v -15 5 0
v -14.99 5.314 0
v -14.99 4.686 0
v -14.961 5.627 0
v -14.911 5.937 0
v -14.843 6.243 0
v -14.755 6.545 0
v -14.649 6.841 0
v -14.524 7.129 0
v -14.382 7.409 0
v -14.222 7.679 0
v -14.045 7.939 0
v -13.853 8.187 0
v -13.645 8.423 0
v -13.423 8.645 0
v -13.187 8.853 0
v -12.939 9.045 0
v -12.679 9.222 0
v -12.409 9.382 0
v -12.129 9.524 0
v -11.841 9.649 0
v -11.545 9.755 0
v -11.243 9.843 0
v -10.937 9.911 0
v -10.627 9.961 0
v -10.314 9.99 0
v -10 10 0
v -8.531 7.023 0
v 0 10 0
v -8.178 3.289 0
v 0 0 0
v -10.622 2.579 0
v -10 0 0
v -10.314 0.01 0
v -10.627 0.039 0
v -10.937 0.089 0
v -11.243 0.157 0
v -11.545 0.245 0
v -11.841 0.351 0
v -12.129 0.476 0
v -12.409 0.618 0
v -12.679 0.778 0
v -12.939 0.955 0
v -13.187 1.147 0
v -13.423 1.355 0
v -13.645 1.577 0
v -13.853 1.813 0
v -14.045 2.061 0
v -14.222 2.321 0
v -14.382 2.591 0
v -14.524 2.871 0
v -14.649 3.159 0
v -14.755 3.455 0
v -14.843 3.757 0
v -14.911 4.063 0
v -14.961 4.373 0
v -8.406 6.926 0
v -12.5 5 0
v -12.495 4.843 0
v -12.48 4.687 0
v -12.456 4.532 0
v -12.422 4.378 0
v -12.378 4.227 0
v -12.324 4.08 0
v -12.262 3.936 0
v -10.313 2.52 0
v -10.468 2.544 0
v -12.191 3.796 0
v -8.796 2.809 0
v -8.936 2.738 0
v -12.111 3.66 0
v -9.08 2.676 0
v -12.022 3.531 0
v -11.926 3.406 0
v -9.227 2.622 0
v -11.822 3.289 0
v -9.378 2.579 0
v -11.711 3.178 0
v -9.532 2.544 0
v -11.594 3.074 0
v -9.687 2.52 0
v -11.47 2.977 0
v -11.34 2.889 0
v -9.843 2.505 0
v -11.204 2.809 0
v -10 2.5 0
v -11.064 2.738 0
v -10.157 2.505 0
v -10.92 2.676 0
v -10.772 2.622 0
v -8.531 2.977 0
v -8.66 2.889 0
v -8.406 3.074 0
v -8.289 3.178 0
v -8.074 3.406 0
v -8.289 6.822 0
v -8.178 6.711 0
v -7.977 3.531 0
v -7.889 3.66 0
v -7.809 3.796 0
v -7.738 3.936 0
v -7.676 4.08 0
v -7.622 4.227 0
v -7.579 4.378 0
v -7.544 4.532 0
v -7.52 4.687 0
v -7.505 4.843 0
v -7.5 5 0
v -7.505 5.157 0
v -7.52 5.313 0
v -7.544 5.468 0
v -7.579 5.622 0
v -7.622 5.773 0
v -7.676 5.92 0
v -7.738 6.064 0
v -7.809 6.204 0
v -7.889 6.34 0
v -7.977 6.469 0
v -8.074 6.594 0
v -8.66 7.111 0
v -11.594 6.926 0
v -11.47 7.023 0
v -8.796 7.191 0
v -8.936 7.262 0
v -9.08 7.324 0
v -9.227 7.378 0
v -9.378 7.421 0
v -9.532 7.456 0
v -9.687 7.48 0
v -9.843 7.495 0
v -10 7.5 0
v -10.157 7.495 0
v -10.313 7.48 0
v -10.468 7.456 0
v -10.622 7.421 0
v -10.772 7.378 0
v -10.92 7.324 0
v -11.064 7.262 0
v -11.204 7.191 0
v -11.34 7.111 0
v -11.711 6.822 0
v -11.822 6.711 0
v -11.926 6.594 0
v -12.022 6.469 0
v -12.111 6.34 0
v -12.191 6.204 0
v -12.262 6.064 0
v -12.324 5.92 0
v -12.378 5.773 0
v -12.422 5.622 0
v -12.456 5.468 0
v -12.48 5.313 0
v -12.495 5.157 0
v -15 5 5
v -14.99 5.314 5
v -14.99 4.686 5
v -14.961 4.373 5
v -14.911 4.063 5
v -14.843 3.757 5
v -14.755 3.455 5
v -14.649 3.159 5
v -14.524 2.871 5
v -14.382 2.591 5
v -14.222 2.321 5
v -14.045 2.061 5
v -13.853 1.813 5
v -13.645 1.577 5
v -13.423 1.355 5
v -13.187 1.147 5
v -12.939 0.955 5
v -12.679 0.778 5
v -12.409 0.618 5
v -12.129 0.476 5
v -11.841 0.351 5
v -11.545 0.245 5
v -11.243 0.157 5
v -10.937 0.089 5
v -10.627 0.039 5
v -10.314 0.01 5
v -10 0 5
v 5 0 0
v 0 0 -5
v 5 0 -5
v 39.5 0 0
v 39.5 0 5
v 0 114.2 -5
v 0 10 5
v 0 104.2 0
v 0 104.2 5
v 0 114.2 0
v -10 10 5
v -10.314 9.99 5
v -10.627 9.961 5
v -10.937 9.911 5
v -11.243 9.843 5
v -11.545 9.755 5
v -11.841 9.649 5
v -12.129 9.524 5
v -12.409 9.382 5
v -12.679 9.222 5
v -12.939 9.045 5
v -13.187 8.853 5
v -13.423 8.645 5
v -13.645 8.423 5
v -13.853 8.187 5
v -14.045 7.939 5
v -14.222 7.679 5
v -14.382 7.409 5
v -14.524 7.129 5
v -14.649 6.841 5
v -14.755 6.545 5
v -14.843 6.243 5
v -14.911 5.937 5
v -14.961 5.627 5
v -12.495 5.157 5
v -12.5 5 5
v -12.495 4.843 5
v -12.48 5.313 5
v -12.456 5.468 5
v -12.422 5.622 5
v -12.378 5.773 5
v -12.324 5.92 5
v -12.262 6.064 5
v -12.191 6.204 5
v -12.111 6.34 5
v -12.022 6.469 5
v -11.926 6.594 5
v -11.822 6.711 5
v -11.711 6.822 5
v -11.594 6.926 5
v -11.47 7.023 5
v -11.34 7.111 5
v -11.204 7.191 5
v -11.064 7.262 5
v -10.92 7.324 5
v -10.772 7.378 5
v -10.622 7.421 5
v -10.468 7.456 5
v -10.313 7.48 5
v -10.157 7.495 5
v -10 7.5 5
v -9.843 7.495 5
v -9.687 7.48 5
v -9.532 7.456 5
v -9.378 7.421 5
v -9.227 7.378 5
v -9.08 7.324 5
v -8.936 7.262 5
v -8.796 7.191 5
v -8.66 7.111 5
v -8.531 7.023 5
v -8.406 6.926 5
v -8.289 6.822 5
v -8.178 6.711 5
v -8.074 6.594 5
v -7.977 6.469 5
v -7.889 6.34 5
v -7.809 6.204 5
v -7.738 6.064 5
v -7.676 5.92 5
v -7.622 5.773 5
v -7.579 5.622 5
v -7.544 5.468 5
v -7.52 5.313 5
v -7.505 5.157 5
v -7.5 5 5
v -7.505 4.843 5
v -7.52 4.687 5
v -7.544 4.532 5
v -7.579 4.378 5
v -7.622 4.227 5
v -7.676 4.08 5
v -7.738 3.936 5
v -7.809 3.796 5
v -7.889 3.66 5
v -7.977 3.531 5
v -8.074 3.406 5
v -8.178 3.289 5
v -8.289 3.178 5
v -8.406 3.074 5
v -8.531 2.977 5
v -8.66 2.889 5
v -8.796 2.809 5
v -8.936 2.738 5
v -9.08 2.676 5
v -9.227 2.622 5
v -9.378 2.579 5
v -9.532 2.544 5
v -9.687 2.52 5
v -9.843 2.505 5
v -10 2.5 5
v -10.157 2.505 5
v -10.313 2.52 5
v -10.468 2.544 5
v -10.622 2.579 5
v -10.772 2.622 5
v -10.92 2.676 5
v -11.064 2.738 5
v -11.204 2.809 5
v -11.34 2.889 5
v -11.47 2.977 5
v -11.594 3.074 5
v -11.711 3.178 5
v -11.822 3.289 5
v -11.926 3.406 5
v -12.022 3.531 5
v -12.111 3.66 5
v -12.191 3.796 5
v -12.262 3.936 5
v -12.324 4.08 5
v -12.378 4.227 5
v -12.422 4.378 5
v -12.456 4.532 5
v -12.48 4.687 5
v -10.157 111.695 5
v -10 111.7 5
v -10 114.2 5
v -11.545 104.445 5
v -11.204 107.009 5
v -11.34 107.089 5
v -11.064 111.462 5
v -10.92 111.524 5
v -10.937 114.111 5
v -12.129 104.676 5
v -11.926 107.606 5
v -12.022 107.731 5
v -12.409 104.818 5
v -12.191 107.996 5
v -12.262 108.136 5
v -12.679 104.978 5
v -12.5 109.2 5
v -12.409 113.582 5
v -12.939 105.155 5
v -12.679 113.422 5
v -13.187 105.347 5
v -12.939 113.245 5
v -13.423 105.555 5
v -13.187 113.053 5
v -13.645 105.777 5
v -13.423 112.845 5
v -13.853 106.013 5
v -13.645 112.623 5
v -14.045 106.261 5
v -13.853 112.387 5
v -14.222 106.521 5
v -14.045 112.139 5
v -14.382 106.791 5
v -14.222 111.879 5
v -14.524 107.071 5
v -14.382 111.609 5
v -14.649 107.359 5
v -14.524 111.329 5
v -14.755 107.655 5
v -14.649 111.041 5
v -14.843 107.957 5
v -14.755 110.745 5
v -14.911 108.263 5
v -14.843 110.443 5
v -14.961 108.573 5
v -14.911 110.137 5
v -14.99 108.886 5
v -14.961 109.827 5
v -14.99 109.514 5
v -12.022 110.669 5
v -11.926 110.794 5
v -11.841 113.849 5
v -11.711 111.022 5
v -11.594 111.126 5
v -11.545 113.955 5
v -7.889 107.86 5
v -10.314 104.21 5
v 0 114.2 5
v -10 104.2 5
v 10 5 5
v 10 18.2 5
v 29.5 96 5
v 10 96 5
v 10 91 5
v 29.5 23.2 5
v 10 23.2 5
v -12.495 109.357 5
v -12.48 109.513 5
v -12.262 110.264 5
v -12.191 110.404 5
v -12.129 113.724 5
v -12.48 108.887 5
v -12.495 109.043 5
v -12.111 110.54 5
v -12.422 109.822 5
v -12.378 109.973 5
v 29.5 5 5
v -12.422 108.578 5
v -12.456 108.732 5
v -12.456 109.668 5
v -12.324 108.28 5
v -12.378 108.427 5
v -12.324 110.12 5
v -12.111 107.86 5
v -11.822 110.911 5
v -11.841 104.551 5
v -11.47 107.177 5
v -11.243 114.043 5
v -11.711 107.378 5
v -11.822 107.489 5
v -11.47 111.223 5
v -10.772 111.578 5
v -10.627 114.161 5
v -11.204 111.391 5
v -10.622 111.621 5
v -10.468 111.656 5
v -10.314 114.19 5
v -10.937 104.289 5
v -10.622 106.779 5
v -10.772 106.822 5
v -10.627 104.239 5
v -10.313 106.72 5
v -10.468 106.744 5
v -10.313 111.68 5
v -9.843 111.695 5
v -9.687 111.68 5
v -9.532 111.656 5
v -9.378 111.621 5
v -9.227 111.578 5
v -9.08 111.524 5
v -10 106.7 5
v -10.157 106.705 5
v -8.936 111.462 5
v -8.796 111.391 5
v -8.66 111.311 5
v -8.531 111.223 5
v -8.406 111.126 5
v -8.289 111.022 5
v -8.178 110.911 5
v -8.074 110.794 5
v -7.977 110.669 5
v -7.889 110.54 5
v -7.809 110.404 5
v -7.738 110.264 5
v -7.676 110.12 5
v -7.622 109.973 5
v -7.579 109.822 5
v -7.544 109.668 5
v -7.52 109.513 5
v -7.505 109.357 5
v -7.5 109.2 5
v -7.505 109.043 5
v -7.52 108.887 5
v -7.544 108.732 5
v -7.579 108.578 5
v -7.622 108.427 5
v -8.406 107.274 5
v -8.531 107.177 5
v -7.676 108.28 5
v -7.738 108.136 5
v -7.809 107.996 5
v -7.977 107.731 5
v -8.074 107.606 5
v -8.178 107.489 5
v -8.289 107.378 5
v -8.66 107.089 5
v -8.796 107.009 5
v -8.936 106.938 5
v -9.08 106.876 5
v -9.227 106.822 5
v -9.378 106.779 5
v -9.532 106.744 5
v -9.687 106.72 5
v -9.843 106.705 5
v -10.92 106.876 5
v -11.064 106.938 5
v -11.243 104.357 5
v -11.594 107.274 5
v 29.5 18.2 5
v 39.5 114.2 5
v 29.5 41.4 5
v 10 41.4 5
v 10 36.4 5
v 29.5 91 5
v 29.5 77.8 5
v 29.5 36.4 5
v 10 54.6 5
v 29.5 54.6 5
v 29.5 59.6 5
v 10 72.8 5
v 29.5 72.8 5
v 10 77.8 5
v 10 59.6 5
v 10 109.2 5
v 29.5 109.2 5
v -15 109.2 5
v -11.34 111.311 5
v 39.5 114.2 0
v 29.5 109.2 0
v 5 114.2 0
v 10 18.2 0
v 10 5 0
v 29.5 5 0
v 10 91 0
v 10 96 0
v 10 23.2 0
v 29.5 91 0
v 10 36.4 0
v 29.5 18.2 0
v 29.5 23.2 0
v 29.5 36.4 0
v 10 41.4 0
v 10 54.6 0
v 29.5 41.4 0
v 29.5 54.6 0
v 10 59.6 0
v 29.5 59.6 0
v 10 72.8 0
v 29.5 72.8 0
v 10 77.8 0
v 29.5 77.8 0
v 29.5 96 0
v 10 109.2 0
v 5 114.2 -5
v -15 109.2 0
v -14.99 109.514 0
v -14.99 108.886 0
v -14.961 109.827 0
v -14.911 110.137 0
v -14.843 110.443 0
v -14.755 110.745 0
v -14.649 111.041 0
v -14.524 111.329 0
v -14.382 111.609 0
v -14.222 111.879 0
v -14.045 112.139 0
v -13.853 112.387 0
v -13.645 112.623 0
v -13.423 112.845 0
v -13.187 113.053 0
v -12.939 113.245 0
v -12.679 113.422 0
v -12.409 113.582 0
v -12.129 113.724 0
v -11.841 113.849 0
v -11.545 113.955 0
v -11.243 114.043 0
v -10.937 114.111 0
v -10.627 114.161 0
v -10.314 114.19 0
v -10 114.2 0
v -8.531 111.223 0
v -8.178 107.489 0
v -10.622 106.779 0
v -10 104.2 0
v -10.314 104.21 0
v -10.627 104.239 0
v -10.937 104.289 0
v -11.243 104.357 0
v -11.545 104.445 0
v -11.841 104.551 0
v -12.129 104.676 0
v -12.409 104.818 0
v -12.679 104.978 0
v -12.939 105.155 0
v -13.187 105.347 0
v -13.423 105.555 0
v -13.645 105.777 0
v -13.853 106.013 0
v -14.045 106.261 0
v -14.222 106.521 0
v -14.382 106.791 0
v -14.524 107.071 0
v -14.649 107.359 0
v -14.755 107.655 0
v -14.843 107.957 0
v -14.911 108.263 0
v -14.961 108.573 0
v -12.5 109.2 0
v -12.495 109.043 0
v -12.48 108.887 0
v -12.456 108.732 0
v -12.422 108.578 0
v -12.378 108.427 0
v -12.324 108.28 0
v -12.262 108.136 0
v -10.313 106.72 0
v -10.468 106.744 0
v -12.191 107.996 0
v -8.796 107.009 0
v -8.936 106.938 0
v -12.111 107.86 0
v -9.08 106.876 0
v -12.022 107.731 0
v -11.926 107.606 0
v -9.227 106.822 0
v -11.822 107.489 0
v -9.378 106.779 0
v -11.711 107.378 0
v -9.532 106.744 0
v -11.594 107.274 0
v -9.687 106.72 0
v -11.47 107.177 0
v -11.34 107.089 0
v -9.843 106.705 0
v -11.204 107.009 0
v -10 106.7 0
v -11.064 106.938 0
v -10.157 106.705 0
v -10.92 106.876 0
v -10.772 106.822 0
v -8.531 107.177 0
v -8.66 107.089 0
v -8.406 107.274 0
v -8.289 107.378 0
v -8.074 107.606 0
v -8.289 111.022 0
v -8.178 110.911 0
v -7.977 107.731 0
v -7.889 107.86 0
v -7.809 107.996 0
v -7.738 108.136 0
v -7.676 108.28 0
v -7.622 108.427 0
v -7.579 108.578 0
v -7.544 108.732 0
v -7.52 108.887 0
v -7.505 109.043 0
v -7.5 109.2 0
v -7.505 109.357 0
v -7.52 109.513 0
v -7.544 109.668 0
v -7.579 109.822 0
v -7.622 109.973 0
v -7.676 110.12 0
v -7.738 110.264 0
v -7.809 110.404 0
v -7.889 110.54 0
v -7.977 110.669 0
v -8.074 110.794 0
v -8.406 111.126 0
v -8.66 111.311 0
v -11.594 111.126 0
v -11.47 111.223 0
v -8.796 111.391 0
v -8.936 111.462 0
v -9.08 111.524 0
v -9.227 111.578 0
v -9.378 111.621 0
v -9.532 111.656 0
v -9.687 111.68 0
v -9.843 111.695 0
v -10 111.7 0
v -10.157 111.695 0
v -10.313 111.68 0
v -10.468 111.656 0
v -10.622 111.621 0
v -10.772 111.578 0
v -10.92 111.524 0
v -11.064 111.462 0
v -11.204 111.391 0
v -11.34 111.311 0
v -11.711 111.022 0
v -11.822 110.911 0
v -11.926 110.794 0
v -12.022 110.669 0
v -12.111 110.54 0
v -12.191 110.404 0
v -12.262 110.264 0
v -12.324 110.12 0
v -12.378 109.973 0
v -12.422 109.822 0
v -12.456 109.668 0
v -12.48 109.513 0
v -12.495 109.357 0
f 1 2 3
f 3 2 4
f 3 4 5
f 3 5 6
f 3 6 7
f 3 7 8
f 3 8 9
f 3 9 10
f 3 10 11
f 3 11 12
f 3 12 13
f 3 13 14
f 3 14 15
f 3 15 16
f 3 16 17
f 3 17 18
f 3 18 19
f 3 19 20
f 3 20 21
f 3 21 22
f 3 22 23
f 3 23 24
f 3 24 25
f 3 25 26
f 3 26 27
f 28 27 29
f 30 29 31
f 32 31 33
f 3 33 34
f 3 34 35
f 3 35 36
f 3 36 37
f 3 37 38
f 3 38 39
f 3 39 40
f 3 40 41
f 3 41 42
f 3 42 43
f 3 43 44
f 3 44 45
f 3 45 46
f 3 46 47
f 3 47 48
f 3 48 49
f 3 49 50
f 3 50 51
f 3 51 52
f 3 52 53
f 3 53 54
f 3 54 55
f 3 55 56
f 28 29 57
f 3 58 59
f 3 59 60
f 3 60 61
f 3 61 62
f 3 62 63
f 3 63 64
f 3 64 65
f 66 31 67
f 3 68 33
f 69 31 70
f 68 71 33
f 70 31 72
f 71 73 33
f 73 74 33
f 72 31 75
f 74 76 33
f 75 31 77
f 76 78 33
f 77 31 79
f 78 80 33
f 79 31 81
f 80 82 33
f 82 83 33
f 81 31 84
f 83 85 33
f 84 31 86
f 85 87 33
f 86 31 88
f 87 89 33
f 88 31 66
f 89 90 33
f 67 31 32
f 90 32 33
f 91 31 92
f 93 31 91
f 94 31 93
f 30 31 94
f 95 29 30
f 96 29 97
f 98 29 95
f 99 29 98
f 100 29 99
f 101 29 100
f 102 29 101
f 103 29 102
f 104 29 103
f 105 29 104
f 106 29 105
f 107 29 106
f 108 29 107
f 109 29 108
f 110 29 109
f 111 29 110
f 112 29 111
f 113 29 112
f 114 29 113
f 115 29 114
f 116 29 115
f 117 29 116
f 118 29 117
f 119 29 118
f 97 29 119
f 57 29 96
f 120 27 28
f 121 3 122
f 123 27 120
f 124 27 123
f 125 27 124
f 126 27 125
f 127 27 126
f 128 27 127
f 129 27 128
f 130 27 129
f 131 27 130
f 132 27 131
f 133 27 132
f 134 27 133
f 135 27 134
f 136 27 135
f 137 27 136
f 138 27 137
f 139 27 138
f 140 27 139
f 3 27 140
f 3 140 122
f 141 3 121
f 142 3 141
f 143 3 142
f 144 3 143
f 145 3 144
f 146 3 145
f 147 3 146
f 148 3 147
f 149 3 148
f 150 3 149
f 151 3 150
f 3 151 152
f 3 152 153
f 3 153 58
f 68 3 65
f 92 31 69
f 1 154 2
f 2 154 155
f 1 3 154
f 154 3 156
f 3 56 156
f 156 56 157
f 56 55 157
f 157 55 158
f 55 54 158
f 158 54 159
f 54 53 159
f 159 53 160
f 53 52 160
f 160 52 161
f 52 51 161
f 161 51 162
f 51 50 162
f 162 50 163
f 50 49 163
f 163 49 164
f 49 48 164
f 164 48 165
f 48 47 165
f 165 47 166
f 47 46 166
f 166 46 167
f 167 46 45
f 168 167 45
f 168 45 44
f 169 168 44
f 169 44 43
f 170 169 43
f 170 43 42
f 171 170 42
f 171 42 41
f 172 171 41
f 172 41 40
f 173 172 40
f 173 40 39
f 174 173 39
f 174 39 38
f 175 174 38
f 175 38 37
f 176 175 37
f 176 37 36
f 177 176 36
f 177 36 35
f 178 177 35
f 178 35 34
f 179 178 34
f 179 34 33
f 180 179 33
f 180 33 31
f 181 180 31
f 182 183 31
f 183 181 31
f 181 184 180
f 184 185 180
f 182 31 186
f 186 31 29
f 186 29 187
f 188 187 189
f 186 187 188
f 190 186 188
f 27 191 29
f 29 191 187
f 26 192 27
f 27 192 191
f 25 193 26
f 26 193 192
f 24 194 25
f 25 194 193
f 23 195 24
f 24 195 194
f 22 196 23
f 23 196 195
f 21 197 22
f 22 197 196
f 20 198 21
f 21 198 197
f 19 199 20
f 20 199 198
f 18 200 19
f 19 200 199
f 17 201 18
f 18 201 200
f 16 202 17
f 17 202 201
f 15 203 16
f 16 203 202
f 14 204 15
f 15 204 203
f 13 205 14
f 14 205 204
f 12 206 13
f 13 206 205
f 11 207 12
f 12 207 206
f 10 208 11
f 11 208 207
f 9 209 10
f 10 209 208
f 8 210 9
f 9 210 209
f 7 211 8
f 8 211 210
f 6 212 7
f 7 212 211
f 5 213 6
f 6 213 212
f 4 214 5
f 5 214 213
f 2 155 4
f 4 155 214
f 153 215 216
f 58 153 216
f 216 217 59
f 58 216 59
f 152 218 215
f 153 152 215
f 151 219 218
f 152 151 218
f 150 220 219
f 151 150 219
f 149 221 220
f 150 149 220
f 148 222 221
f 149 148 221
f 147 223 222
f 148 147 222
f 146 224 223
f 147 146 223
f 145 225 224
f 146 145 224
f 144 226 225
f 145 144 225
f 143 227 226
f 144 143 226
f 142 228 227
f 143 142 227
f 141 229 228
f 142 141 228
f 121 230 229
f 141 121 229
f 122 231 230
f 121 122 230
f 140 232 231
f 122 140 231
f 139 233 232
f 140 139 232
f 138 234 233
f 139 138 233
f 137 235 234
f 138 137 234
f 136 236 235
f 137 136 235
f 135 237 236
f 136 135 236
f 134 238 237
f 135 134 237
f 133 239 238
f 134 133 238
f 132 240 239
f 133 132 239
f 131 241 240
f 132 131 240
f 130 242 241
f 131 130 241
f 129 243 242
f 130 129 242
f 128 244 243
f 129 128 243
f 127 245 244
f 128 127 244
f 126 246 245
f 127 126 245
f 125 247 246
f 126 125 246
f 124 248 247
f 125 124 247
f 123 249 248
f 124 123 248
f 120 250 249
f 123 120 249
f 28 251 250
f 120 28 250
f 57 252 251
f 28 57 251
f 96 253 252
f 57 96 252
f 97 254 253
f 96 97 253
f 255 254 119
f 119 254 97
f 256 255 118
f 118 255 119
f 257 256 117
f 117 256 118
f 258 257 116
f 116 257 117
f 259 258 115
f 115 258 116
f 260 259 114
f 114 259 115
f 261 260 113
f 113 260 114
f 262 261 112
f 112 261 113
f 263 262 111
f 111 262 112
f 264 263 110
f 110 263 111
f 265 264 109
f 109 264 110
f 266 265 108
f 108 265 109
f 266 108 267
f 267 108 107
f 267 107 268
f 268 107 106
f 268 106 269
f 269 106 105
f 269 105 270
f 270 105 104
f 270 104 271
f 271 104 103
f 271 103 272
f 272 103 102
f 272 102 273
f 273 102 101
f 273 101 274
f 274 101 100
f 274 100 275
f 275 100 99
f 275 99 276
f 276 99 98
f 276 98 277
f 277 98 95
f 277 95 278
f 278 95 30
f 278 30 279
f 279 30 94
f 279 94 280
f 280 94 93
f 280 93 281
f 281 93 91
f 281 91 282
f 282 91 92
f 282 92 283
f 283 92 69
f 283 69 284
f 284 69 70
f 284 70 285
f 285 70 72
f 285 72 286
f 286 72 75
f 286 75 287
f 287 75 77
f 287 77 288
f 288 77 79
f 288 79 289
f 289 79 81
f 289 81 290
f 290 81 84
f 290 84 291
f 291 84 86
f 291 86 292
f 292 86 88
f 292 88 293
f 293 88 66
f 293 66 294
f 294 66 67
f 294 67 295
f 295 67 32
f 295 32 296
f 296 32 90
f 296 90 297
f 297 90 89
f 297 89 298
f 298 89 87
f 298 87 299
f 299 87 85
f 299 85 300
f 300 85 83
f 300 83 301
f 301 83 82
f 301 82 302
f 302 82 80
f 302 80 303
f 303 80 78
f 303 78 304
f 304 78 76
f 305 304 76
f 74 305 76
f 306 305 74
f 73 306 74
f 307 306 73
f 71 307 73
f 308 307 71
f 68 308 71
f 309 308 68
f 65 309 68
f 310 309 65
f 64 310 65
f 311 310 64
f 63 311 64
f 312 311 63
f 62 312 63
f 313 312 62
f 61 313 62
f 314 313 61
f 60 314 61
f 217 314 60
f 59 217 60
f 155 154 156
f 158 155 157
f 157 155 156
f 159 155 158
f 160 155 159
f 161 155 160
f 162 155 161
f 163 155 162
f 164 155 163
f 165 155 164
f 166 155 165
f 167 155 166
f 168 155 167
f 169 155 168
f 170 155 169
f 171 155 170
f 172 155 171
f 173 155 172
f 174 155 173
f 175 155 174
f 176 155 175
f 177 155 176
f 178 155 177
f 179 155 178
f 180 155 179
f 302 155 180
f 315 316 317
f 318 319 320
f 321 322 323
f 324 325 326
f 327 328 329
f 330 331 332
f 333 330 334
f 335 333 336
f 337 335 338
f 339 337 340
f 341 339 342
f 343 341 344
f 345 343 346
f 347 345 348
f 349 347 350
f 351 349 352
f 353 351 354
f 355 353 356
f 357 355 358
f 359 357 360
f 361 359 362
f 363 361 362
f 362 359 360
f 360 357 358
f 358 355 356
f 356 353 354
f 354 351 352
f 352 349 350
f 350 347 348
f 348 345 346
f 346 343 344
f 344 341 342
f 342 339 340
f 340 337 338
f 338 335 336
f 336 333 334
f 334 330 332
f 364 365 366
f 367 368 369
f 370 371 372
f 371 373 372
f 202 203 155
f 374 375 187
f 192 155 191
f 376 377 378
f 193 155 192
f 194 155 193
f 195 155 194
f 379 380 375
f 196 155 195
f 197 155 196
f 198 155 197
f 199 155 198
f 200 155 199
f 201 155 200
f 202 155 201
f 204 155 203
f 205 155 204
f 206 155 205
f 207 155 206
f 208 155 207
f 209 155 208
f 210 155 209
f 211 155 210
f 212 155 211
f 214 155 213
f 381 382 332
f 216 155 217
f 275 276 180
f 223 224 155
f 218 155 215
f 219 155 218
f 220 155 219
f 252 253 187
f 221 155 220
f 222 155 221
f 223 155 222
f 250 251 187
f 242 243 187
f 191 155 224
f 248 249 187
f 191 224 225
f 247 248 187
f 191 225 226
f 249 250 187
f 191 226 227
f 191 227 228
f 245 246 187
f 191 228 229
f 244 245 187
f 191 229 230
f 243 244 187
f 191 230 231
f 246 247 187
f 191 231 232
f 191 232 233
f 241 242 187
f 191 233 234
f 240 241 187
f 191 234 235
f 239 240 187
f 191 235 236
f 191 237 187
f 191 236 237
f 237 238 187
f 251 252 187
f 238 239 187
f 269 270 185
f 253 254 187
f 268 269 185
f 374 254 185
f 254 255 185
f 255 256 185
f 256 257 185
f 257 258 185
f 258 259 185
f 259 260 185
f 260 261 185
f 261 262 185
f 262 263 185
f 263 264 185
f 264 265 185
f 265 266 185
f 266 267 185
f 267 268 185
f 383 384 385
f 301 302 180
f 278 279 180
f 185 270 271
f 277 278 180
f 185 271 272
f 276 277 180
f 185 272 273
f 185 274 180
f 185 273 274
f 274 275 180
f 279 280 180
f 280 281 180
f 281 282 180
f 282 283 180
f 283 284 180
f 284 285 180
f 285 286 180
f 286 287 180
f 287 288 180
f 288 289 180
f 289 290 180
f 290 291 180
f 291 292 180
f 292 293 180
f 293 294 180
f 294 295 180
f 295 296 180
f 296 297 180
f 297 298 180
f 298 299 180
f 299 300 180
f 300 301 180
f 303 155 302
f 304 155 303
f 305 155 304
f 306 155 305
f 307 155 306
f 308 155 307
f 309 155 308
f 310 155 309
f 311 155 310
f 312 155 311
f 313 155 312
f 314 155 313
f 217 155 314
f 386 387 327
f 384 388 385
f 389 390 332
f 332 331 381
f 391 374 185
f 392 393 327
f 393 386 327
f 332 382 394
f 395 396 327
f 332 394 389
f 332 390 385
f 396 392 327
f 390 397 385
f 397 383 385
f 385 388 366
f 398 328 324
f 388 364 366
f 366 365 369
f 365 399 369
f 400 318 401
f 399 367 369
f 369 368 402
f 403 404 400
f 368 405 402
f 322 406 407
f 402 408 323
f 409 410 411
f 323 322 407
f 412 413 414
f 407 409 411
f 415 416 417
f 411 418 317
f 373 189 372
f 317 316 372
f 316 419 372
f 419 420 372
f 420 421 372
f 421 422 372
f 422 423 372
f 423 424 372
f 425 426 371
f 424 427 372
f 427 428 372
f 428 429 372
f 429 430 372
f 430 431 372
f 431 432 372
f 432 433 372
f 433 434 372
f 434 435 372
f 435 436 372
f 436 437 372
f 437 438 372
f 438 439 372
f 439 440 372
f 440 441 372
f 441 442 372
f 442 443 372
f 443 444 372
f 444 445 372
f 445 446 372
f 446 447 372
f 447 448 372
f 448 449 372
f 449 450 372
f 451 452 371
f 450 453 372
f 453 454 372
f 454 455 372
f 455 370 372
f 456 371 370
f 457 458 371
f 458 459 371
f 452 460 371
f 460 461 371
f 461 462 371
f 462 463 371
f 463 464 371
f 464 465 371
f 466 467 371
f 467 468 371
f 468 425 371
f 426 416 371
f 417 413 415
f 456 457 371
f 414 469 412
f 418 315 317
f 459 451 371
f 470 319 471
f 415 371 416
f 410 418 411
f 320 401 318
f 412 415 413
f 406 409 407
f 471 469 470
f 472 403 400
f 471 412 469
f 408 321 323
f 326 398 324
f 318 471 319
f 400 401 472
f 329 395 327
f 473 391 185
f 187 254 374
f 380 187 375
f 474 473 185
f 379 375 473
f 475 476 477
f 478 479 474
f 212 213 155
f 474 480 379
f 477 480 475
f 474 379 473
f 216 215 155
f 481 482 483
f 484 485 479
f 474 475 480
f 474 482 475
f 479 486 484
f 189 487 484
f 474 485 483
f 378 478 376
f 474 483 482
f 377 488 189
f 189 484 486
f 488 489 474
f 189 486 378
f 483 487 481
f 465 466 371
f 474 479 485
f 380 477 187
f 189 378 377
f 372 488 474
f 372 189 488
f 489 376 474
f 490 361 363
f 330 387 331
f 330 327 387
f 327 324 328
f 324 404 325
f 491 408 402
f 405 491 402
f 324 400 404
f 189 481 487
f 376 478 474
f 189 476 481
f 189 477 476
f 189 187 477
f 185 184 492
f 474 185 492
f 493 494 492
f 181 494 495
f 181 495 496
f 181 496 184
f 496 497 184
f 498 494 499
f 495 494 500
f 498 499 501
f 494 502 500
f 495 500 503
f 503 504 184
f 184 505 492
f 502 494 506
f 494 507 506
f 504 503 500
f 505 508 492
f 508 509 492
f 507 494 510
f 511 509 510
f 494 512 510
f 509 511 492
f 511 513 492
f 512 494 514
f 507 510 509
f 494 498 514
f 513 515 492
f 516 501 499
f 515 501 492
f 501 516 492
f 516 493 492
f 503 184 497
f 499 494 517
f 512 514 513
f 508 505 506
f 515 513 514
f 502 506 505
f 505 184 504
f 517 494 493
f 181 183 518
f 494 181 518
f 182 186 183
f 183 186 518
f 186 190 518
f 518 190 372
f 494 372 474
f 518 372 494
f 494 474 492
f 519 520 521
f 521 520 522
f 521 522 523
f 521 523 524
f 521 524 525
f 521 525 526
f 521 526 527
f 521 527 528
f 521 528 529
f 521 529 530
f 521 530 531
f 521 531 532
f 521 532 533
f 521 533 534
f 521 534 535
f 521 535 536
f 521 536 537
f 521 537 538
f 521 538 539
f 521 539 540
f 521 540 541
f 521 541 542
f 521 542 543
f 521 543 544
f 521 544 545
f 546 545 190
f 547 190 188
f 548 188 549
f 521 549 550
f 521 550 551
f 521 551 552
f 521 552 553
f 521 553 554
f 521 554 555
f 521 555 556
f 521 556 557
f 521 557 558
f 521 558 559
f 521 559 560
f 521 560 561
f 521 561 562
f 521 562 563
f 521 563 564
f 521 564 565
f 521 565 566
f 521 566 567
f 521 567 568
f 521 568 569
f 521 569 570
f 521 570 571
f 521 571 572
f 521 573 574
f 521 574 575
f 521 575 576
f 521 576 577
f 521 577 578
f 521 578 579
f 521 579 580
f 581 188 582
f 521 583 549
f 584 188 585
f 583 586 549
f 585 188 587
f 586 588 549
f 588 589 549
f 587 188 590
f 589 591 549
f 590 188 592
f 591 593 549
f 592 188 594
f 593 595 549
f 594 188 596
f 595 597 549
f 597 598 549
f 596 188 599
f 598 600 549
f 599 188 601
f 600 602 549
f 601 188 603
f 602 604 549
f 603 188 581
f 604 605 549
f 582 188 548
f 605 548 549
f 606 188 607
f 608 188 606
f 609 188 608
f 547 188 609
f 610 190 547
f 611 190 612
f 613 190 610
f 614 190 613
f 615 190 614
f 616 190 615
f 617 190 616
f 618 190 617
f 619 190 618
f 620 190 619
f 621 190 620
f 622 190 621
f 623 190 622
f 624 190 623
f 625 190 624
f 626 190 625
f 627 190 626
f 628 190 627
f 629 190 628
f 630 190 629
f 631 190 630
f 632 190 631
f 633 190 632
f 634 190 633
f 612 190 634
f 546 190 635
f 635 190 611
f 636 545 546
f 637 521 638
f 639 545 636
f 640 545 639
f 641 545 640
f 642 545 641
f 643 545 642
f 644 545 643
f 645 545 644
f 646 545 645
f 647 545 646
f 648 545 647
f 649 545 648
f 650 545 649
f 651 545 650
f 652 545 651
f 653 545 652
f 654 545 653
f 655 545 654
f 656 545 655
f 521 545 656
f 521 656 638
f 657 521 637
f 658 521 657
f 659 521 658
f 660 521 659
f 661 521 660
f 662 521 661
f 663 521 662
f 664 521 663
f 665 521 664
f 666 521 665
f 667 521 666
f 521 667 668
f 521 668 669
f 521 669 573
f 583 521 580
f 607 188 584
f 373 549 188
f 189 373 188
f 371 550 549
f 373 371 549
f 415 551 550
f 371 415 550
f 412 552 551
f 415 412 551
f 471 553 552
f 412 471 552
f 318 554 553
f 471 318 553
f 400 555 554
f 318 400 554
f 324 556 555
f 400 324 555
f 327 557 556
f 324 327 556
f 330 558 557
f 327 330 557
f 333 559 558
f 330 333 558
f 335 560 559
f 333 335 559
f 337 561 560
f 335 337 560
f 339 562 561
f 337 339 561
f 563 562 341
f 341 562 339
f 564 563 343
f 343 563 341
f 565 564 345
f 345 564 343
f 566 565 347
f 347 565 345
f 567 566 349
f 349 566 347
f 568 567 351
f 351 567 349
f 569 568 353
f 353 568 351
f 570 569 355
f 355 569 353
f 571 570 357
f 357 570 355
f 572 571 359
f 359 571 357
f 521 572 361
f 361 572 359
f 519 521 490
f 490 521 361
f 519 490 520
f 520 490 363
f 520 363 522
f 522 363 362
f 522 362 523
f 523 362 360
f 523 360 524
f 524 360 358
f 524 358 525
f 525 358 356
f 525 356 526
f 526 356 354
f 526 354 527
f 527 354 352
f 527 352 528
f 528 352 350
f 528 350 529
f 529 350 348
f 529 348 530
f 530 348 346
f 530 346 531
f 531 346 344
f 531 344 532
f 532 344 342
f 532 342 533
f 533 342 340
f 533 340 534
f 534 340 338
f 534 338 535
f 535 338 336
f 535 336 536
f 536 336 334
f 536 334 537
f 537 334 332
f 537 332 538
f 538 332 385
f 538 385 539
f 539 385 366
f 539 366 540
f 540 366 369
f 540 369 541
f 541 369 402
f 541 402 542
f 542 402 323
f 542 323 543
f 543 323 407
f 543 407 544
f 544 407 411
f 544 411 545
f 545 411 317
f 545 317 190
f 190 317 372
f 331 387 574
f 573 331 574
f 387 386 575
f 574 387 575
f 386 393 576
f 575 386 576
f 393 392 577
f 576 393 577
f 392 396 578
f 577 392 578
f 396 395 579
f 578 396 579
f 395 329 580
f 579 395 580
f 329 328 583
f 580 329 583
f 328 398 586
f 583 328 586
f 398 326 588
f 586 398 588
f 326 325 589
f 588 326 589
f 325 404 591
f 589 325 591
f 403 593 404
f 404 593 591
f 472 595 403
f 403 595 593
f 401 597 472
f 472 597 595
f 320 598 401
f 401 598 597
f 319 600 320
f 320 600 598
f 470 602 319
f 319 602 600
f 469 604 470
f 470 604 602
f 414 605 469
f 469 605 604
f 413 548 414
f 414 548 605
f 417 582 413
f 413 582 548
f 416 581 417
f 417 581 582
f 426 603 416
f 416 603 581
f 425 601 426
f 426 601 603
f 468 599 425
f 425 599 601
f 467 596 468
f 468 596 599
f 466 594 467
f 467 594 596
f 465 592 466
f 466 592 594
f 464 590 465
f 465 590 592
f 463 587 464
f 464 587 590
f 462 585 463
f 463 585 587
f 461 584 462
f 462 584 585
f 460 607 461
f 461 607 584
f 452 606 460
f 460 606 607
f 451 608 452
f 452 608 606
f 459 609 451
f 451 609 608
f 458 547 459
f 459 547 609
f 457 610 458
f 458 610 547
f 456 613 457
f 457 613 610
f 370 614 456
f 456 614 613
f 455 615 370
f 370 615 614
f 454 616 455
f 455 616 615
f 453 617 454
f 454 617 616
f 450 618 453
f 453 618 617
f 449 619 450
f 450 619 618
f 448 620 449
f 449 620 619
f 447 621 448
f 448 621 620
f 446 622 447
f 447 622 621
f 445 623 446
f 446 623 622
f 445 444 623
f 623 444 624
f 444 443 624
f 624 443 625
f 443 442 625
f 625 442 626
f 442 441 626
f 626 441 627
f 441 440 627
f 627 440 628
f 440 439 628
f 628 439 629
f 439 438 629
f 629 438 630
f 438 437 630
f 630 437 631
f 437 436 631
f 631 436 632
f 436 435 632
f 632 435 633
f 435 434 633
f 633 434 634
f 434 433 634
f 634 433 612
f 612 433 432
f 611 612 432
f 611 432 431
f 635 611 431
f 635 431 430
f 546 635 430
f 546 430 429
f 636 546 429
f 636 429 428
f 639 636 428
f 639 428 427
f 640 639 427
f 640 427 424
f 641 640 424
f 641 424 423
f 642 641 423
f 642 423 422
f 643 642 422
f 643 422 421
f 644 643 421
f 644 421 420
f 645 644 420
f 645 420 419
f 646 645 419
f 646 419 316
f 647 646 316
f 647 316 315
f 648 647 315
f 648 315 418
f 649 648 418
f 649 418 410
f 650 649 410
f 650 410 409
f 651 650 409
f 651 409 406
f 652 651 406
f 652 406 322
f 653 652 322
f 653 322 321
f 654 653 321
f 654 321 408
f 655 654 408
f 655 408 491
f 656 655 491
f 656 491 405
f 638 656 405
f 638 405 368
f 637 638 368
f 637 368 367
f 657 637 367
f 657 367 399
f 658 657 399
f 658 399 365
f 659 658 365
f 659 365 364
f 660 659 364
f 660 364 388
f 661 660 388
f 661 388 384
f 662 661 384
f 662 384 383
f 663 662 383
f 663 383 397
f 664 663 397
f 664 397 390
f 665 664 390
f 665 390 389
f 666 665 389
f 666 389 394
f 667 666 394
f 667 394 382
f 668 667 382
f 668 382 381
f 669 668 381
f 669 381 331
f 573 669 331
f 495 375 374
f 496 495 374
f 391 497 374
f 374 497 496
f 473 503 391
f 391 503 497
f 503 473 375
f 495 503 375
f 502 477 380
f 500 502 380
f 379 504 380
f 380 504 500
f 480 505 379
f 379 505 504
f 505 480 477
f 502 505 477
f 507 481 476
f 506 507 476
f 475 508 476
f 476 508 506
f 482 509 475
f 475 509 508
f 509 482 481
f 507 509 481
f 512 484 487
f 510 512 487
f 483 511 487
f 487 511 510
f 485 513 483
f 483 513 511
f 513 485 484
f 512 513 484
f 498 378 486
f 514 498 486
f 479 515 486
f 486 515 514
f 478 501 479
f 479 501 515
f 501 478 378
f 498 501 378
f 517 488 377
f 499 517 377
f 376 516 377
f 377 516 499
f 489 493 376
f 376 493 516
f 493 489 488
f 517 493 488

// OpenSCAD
switch_width = 19.5;
switch_height = 13.2;
spaccing_width = 10;
spaccing_height = 5;
depth = 5;

switchs = 6;

width = 2*spaccing_width + switch_width;
height = 2*spaccing_height + spaccing_height*(switchs - 1) + switchs*switch_height;

module holder(){
difference(){
		union(){
			cube([10,10,5]);
			translate([0,5,0])
			cylinder(r1=5,r2=5,h=5,$fn=100);
		}	
		translate([0,5,0])
		cylinder(r1=2.5,r2=2.5,h=5,$fn=100);
	}
}

difference(){
union(){
	//holder
	translate([-10,0,0])
	holder();	

	translate([-10,height-10,0])
	holder();

	translate([0,0,-depth])
	cube([5,height,7.5]);
	cube([width,height,depth]);
}

for(i = [1 : switchs]){
	translate([spaccing_width,spaccing_height * i + (i - 1) * switch_height,0])
	cube([switch_width,switch_height,depth]);
}
}
